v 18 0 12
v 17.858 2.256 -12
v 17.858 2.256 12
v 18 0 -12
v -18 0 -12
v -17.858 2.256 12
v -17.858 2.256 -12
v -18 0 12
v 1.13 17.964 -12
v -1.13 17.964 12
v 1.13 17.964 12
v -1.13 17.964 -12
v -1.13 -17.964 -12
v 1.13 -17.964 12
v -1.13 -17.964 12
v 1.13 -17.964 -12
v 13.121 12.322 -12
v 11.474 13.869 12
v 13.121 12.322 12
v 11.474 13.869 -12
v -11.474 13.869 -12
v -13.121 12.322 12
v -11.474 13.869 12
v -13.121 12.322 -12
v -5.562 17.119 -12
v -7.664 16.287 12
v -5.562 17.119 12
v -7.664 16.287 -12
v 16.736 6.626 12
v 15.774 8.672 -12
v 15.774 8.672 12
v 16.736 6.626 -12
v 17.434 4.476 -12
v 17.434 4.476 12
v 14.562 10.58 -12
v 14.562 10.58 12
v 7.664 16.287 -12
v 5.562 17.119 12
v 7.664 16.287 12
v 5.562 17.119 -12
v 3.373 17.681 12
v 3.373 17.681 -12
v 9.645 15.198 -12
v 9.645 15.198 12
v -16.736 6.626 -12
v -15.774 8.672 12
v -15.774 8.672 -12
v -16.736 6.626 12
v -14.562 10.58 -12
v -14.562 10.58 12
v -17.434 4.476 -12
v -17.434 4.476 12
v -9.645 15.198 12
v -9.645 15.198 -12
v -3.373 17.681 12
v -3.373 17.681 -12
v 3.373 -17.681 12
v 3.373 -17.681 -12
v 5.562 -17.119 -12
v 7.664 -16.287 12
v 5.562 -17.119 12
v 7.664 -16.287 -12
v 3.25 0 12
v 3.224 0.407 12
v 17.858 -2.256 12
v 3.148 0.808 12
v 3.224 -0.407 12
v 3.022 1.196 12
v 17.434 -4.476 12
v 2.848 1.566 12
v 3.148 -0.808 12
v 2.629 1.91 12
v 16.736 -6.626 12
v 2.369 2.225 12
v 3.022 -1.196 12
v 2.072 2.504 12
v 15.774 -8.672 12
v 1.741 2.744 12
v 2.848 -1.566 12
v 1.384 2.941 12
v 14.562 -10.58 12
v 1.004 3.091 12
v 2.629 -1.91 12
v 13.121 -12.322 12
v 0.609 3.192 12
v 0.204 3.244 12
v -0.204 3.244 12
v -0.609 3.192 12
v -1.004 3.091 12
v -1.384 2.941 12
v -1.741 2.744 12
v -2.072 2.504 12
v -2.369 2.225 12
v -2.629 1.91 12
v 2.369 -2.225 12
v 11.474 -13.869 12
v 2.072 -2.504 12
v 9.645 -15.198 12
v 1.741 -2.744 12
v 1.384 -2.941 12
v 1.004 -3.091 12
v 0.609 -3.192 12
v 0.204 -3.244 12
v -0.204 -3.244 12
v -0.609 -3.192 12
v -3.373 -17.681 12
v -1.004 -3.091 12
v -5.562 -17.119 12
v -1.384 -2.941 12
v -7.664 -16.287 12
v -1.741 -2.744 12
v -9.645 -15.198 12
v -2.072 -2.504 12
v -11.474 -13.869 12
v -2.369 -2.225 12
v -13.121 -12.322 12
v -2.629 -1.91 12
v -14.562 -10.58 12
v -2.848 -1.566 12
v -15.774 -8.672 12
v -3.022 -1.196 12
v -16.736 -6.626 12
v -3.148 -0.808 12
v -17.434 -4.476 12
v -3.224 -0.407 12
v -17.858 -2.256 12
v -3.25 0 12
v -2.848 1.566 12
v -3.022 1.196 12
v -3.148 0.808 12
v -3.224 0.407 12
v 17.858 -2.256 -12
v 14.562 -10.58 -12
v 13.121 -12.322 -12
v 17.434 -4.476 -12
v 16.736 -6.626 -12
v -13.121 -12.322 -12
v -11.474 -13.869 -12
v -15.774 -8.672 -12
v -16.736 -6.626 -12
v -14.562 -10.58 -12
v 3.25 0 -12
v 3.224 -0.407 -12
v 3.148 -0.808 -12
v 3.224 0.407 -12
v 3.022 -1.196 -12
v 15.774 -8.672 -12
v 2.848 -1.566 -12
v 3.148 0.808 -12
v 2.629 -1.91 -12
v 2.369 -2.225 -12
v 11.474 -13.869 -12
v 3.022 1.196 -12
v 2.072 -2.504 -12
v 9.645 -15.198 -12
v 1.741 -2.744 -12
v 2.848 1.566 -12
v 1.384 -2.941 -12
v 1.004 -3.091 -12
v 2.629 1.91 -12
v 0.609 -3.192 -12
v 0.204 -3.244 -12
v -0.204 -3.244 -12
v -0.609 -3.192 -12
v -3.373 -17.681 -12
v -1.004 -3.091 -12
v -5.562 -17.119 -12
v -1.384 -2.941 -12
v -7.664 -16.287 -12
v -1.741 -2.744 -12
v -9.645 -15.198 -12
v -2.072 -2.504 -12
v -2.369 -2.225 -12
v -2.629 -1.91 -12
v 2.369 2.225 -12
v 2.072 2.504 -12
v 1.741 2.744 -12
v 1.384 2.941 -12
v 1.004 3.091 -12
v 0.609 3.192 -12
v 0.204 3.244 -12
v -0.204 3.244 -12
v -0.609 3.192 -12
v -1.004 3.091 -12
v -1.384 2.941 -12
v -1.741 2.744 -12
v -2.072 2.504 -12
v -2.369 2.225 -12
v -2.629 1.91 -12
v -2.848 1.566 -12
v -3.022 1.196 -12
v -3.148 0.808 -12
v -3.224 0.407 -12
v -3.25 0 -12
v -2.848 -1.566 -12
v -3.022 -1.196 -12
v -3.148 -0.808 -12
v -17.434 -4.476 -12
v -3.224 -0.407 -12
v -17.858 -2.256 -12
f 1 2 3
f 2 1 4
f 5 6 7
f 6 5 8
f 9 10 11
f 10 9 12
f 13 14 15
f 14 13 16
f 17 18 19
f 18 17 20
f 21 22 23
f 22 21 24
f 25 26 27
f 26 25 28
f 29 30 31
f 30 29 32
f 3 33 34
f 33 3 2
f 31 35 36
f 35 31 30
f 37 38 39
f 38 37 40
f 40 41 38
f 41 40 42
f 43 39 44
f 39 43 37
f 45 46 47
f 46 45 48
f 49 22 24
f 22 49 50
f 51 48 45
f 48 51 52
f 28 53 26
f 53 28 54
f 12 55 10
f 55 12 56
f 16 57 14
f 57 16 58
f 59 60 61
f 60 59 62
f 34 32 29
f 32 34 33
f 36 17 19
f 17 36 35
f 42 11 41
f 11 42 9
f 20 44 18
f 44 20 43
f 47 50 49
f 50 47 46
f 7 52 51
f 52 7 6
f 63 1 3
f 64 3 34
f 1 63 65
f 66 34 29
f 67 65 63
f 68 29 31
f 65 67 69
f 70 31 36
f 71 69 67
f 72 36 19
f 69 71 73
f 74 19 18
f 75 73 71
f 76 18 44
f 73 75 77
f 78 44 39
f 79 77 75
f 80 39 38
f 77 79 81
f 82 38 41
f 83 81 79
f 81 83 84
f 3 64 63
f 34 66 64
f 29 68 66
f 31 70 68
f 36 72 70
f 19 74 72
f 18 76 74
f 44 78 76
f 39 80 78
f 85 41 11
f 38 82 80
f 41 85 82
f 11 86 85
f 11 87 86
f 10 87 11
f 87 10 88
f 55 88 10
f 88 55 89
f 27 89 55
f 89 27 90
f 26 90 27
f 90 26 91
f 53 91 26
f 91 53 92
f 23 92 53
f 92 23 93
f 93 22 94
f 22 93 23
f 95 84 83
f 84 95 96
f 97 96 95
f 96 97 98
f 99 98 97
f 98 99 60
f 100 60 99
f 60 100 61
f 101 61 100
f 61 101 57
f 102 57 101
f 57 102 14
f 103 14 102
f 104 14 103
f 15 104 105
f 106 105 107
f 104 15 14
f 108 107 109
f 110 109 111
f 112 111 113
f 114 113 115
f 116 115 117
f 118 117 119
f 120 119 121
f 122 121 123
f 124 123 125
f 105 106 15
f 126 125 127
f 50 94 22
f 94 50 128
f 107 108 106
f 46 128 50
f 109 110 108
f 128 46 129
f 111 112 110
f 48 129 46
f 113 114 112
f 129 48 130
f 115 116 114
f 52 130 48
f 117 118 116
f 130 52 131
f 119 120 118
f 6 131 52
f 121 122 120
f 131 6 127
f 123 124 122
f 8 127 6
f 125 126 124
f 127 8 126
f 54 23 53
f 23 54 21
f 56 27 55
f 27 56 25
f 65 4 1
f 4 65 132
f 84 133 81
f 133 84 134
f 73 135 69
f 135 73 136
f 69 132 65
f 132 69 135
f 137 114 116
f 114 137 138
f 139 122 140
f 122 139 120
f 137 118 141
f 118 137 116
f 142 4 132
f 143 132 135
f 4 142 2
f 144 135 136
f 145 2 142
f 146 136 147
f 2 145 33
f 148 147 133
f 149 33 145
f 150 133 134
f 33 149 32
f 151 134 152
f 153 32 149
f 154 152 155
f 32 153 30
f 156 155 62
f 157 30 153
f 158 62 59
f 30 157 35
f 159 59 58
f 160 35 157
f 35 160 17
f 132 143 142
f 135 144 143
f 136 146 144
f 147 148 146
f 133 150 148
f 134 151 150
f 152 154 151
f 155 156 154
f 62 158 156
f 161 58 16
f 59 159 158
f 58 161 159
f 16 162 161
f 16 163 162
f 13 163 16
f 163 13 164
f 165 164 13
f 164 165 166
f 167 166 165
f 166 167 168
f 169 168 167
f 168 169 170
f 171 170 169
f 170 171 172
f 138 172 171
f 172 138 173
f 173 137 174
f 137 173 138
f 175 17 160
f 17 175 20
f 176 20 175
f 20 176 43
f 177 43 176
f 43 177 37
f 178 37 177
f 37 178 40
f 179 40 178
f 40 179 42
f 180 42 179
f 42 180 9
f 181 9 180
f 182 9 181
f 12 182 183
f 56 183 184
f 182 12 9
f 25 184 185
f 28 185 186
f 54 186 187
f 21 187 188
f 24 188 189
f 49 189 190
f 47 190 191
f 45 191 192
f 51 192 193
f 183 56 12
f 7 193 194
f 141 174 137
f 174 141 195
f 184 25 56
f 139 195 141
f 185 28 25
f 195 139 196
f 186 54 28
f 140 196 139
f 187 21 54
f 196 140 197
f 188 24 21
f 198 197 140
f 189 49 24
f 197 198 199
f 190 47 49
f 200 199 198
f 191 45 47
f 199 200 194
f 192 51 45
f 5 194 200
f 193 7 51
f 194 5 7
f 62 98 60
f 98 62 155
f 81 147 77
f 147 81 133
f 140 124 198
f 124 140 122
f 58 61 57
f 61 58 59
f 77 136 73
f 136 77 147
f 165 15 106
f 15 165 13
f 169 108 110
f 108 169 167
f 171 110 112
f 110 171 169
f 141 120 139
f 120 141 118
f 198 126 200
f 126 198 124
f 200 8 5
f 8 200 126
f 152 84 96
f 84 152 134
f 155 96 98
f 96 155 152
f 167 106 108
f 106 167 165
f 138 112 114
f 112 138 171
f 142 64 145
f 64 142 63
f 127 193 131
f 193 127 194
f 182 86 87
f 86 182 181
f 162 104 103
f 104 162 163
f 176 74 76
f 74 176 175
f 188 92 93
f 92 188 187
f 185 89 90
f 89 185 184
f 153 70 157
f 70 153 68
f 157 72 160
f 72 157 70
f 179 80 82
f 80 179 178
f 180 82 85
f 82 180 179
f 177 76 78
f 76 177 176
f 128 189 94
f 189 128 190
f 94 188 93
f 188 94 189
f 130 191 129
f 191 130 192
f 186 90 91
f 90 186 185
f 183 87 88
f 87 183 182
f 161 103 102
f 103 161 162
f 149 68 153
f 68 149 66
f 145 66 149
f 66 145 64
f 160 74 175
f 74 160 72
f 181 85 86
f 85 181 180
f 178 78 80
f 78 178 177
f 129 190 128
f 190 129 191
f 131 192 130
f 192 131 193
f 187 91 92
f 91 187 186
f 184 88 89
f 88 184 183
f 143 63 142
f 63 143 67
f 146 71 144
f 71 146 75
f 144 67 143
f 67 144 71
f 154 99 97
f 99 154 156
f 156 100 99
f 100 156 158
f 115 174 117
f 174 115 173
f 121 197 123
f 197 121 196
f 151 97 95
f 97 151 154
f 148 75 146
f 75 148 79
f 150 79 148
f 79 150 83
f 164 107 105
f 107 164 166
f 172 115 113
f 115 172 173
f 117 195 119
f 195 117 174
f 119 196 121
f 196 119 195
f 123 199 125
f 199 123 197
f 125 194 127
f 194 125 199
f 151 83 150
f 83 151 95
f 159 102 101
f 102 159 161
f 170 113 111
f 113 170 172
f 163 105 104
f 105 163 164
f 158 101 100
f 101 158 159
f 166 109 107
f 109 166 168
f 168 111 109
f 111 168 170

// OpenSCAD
$fn = 50;


difference() {
	union() {
		translate(v = [0, 0, -12.0000000000]) {
			cylinder(h = 24, r = 18.0000000000);
		}
	}
	union() {
		translate(v = [0, 0, -100.0000000000]) {
			cylinder(h = 200, r = 3.2500000000);
		}
	}
}
